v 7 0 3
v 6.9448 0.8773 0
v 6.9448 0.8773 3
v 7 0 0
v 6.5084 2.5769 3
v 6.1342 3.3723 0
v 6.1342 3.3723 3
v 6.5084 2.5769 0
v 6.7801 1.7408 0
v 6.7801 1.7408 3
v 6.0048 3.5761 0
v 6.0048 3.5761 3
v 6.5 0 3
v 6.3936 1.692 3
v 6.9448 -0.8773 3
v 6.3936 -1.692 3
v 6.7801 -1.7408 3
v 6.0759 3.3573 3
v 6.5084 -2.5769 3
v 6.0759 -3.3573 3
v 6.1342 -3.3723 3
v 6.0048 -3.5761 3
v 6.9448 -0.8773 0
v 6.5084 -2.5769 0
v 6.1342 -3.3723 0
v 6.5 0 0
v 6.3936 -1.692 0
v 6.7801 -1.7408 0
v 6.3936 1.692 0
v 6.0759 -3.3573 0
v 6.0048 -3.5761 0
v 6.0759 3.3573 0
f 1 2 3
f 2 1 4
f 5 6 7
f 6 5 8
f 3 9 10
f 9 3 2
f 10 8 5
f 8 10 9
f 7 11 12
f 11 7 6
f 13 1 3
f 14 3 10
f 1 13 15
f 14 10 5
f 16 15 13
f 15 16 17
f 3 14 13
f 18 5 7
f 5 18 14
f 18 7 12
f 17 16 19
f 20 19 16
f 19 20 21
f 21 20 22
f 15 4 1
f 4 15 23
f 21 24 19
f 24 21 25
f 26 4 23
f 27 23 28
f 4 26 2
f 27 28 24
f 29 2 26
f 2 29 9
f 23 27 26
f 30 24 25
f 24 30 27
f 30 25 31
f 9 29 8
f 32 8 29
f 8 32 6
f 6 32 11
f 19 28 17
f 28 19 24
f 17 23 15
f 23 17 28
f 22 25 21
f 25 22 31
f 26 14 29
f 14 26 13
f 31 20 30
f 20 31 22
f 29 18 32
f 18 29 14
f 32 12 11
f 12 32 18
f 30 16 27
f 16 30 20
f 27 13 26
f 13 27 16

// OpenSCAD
$fn = 50;


difference() {
	union() {
		cylinder(h = 3, r = 7.0000000000);
		translate(v = [-10.0000000000, 0, 0]) {
			cylinder(h = 3, r = 7.0000000000);
		}
	}
	union() {
		cylinder(h = 3, r = 3.2500000000);
		cylinder(h = 3, r = 1.8000000000);
		cylinder(h = 3, r = 1.8000000000);
		cylinder(h = 3, r = 1.8000000000);
		translate(v = [-14.5000000000, 0, 0]) {
			hull() {
				translate(v = [-3.7500000000, 0.0000000000, 0]) {
					cylinder(h = 3, r = 10.5000000000);
				}
				translate(v = [3.7500000000, 0.0000000000, 0]) {
					cylinder(h = 3, r = 10.5000000000);
				}
				translate(v = [-3.7500000000, -0.0000000000, 0]) {
					cylinder(h = 3, r = 10.5000000000);
				}
				translate(v = [3.7500000000, -0.0000000000, 0]) {
					cylinder(h = 3, r = 10.5000000000);
				}
			}
		}
		translate(v = [-7.0000000000, 0, 0.0000000000]) {
			cylinder(h = 3, r = 13.5000000000);
		}
	}
}
